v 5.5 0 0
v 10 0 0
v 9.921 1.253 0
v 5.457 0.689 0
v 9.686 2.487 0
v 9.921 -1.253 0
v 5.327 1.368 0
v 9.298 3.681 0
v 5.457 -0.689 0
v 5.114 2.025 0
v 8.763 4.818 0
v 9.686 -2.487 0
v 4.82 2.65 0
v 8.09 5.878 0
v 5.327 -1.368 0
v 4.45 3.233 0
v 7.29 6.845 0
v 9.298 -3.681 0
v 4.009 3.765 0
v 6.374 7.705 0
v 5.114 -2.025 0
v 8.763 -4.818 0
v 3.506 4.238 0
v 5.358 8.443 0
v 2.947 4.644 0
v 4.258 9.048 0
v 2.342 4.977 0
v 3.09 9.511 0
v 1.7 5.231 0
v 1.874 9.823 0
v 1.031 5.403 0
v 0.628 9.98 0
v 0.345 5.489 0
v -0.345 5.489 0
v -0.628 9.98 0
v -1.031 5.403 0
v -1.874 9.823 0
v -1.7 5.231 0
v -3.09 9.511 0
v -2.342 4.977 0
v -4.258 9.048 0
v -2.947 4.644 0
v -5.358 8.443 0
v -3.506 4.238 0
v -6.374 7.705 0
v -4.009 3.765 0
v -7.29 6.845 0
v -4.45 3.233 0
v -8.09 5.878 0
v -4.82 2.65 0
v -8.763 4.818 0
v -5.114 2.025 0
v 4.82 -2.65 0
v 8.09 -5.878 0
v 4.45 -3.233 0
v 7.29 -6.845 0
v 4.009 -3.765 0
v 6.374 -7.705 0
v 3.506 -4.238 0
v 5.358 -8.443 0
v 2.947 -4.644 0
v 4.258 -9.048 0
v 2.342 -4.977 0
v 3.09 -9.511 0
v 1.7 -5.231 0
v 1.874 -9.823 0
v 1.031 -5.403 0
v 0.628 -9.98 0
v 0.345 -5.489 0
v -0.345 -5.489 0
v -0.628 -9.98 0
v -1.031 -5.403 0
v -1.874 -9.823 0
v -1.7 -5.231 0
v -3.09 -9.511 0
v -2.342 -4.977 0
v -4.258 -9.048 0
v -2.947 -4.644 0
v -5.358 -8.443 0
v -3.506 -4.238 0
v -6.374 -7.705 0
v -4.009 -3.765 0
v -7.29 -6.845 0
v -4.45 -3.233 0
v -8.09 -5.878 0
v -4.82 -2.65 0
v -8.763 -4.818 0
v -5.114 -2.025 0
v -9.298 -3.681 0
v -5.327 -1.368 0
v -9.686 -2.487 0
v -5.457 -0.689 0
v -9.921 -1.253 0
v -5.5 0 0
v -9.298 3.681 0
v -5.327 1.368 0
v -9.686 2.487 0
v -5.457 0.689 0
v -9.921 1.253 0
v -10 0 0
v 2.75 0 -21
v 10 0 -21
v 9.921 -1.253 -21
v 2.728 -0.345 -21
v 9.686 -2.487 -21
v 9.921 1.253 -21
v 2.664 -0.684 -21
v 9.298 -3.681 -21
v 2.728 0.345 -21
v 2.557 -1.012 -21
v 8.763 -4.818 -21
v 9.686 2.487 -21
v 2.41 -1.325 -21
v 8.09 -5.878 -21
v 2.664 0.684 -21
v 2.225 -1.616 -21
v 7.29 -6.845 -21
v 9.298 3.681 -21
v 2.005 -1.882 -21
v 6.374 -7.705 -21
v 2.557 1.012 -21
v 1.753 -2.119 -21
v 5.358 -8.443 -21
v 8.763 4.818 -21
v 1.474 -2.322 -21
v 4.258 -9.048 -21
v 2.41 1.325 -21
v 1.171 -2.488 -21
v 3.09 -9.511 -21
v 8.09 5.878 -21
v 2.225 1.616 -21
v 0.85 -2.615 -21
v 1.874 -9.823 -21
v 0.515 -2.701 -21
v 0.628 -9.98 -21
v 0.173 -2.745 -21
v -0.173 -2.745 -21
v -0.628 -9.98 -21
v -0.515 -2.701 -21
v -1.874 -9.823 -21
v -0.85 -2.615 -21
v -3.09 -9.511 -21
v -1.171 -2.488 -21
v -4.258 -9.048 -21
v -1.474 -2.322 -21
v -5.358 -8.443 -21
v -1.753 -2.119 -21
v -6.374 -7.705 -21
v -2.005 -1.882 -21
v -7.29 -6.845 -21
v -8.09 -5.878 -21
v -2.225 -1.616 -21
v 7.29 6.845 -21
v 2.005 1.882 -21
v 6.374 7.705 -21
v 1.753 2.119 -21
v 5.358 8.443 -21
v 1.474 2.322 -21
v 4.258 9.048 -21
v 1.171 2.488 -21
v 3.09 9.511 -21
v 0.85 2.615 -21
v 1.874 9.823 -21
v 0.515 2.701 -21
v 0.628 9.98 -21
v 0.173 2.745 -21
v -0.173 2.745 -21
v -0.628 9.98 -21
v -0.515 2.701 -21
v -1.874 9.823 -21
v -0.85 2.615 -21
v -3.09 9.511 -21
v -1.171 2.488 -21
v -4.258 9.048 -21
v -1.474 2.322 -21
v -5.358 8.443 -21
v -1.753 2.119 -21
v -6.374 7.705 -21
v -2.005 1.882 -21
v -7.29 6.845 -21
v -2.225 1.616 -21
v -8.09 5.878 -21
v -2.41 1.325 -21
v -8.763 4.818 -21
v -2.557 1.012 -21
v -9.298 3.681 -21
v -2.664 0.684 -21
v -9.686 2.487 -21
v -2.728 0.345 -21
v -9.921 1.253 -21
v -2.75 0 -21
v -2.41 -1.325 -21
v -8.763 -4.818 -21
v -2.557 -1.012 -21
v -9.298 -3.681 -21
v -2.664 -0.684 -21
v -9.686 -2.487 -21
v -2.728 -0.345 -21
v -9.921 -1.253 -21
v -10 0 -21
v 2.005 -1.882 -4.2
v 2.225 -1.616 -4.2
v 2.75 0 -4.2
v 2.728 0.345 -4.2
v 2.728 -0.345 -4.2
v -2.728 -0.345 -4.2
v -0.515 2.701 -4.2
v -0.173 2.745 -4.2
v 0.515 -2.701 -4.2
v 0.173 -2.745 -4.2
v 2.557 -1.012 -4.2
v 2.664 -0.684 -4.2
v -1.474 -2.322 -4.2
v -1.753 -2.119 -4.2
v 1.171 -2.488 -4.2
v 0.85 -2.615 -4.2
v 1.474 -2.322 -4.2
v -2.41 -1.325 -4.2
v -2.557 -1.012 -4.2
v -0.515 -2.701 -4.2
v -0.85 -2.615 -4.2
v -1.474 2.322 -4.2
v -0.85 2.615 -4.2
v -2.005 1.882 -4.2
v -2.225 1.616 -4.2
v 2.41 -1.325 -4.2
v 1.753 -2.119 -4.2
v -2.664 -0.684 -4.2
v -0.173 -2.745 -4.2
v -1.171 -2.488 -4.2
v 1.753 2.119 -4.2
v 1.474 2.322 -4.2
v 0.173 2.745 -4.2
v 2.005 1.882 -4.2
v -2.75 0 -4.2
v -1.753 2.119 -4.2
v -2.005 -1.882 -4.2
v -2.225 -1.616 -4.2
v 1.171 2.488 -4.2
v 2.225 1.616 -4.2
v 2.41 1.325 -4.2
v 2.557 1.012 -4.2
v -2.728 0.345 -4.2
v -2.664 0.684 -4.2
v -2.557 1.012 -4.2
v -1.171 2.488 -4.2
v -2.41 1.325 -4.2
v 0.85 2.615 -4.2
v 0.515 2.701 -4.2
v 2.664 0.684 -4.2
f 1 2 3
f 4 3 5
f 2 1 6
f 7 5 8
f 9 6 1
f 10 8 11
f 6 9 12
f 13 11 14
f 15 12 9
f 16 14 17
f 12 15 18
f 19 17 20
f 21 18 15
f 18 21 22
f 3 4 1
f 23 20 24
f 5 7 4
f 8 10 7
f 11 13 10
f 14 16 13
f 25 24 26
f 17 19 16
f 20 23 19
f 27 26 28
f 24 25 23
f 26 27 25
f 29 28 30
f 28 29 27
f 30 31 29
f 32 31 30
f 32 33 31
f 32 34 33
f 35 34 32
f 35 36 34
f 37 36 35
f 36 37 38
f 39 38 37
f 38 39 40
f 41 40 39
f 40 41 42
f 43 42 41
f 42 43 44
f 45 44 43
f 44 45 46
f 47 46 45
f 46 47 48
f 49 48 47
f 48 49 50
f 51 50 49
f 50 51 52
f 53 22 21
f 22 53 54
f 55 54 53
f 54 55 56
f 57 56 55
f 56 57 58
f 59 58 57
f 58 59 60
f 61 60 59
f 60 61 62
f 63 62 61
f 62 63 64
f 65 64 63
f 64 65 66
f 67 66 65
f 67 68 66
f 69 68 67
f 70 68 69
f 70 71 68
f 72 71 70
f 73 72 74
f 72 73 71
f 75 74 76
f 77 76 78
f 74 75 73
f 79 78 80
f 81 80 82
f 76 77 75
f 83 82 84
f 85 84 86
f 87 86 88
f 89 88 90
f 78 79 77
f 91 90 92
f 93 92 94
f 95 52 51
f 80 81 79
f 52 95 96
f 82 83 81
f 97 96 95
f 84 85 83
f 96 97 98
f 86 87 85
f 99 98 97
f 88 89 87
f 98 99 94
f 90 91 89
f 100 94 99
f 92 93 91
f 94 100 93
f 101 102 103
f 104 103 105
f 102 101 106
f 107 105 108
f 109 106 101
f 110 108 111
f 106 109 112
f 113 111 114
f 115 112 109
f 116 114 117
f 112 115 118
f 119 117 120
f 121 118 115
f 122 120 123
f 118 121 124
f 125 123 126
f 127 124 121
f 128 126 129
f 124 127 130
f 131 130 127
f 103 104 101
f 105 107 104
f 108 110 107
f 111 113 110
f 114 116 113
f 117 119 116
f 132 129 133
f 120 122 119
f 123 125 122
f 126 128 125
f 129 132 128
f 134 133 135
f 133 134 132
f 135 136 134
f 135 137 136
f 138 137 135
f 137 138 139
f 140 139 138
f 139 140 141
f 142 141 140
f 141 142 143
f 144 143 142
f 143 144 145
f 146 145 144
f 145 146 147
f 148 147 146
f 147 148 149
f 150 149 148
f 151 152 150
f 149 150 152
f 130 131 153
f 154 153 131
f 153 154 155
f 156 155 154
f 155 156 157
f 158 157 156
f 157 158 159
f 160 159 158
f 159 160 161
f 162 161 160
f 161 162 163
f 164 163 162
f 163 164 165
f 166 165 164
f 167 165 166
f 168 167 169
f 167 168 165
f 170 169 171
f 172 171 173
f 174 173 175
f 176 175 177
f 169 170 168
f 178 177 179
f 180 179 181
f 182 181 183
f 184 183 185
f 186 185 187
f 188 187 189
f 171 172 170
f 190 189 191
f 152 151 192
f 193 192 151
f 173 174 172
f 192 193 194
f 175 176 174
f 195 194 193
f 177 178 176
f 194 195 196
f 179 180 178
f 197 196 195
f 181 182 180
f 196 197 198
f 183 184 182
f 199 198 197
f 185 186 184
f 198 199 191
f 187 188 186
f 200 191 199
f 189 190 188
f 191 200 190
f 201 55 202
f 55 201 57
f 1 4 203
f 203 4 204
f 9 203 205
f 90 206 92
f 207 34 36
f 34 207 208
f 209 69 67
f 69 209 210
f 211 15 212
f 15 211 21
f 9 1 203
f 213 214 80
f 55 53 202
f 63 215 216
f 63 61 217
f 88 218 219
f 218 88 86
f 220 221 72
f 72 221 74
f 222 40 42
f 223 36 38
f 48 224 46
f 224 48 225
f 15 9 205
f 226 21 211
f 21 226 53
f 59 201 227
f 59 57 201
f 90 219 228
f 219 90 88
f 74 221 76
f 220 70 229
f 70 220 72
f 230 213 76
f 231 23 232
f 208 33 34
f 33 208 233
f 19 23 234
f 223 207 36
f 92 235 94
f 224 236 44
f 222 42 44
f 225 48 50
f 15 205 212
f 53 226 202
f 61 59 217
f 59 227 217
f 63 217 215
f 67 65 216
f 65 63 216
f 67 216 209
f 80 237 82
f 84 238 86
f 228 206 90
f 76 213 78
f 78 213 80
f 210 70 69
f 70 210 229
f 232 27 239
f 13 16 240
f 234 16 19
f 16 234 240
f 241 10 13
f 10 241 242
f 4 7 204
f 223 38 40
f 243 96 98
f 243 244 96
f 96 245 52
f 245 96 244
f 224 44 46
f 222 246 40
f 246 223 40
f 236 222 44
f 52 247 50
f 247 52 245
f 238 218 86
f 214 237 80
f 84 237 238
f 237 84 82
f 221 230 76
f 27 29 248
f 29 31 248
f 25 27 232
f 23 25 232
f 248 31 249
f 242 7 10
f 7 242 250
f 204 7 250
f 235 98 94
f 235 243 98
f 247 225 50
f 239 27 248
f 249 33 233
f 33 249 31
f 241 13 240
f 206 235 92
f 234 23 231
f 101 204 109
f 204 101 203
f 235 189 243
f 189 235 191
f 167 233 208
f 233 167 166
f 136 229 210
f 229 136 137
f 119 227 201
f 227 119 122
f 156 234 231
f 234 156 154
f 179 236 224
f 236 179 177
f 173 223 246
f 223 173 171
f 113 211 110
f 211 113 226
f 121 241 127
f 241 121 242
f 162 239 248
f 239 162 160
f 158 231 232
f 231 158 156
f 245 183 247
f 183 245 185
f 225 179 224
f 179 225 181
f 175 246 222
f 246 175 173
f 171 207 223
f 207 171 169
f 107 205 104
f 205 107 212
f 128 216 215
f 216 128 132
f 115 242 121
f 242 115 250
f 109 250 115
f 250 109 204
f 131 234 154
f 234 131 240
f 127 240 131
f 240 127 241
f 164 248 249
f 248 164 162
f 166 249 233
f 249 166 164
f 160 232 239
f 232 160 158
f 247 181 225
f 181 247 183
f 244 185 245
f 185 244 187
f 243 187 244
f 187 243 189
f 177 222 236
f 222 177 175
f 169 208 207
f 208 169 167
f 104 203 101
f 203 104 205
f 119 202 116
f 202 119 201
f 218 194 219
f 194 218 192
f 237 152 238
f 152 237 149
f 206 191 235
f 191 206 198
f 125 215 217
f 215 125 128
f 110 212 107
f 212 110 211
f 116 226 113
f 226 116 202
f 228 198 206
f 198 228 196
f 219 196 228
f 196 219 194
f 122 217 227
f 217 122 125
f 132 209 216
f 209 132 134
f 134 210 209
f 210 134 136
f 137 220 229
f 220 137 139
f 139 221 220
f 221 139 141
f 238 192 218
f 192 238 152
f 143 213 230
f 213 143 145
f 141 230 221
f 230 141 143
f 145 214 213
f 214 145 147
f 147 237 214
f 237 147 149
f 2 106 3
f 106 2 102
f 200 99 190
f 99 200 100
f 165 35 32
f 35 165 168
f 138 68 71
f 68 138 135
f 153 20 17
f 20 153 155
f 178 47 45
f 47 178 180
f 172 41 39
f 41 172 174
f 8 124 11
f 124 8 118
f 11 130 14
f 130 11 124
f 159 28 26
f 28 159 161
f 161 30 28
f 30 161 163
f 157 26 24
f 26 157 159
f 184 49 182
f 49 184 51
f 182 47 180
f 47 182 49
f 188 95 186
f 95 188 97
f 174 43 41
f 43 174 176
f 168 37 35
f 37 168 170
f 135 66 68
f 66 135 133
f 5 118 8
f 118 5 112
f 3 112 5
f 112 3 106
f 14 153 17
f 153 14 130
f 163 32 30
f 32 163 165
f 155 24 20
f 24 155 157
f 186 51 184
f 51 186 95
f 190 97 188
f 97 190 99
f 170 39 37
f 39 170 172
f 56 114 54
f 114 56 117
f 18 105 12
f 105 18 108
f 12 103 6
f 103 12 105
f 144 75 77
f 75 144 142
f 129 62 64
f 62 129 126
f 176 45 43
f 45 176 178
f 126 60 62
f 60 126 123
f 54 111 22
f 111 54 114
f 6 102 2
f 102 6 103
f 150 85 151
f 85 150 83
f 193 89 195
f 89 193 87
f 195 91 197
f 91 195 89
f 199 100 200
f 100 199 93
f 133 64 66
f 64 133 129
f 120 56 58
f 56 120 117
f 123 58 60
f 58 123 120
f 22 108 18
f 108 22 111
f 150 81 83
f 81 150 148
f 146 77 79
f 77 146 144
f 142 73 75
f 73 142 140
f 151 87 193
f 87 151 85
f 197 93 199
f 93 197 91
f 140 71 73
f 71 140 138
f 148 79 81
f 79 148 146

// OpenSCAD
$fn = 50;


difference() {
	union() {
		translate(v = [0, 0, -21.0000000000]) {
			cylinder(h = 21, r = 10.0000000000);
		}
		cylinder(h = 0, r = 16.0000000000);
	}
	union() {
		translate(v = [0, 0, 0]) {
			rotate(a = [0, 0, 0]) {
				difference() {
					union() {
						#translate(v = [0, 0, -21.0000000000]) {
							cylinder(h = 21, r = 2.2500000000);
						}
						#translate(v = [0, 0, -4.2000000000]) {
							cylinder(h = 4.2000000000, r1 = 2.7500000000, r2 = 5.5000000000);
						}
						#translate(v = [0, 0, -21.0000000000]) {
							cylinder(h = 21, r = 2.7500000000);
						}
						#translate(v = [0, 0, -21.0000000000]) {
							cylinder(h = 21, r = 2.2500000000);
						}
					}
					union();
				}
			}
		}
	}
}
